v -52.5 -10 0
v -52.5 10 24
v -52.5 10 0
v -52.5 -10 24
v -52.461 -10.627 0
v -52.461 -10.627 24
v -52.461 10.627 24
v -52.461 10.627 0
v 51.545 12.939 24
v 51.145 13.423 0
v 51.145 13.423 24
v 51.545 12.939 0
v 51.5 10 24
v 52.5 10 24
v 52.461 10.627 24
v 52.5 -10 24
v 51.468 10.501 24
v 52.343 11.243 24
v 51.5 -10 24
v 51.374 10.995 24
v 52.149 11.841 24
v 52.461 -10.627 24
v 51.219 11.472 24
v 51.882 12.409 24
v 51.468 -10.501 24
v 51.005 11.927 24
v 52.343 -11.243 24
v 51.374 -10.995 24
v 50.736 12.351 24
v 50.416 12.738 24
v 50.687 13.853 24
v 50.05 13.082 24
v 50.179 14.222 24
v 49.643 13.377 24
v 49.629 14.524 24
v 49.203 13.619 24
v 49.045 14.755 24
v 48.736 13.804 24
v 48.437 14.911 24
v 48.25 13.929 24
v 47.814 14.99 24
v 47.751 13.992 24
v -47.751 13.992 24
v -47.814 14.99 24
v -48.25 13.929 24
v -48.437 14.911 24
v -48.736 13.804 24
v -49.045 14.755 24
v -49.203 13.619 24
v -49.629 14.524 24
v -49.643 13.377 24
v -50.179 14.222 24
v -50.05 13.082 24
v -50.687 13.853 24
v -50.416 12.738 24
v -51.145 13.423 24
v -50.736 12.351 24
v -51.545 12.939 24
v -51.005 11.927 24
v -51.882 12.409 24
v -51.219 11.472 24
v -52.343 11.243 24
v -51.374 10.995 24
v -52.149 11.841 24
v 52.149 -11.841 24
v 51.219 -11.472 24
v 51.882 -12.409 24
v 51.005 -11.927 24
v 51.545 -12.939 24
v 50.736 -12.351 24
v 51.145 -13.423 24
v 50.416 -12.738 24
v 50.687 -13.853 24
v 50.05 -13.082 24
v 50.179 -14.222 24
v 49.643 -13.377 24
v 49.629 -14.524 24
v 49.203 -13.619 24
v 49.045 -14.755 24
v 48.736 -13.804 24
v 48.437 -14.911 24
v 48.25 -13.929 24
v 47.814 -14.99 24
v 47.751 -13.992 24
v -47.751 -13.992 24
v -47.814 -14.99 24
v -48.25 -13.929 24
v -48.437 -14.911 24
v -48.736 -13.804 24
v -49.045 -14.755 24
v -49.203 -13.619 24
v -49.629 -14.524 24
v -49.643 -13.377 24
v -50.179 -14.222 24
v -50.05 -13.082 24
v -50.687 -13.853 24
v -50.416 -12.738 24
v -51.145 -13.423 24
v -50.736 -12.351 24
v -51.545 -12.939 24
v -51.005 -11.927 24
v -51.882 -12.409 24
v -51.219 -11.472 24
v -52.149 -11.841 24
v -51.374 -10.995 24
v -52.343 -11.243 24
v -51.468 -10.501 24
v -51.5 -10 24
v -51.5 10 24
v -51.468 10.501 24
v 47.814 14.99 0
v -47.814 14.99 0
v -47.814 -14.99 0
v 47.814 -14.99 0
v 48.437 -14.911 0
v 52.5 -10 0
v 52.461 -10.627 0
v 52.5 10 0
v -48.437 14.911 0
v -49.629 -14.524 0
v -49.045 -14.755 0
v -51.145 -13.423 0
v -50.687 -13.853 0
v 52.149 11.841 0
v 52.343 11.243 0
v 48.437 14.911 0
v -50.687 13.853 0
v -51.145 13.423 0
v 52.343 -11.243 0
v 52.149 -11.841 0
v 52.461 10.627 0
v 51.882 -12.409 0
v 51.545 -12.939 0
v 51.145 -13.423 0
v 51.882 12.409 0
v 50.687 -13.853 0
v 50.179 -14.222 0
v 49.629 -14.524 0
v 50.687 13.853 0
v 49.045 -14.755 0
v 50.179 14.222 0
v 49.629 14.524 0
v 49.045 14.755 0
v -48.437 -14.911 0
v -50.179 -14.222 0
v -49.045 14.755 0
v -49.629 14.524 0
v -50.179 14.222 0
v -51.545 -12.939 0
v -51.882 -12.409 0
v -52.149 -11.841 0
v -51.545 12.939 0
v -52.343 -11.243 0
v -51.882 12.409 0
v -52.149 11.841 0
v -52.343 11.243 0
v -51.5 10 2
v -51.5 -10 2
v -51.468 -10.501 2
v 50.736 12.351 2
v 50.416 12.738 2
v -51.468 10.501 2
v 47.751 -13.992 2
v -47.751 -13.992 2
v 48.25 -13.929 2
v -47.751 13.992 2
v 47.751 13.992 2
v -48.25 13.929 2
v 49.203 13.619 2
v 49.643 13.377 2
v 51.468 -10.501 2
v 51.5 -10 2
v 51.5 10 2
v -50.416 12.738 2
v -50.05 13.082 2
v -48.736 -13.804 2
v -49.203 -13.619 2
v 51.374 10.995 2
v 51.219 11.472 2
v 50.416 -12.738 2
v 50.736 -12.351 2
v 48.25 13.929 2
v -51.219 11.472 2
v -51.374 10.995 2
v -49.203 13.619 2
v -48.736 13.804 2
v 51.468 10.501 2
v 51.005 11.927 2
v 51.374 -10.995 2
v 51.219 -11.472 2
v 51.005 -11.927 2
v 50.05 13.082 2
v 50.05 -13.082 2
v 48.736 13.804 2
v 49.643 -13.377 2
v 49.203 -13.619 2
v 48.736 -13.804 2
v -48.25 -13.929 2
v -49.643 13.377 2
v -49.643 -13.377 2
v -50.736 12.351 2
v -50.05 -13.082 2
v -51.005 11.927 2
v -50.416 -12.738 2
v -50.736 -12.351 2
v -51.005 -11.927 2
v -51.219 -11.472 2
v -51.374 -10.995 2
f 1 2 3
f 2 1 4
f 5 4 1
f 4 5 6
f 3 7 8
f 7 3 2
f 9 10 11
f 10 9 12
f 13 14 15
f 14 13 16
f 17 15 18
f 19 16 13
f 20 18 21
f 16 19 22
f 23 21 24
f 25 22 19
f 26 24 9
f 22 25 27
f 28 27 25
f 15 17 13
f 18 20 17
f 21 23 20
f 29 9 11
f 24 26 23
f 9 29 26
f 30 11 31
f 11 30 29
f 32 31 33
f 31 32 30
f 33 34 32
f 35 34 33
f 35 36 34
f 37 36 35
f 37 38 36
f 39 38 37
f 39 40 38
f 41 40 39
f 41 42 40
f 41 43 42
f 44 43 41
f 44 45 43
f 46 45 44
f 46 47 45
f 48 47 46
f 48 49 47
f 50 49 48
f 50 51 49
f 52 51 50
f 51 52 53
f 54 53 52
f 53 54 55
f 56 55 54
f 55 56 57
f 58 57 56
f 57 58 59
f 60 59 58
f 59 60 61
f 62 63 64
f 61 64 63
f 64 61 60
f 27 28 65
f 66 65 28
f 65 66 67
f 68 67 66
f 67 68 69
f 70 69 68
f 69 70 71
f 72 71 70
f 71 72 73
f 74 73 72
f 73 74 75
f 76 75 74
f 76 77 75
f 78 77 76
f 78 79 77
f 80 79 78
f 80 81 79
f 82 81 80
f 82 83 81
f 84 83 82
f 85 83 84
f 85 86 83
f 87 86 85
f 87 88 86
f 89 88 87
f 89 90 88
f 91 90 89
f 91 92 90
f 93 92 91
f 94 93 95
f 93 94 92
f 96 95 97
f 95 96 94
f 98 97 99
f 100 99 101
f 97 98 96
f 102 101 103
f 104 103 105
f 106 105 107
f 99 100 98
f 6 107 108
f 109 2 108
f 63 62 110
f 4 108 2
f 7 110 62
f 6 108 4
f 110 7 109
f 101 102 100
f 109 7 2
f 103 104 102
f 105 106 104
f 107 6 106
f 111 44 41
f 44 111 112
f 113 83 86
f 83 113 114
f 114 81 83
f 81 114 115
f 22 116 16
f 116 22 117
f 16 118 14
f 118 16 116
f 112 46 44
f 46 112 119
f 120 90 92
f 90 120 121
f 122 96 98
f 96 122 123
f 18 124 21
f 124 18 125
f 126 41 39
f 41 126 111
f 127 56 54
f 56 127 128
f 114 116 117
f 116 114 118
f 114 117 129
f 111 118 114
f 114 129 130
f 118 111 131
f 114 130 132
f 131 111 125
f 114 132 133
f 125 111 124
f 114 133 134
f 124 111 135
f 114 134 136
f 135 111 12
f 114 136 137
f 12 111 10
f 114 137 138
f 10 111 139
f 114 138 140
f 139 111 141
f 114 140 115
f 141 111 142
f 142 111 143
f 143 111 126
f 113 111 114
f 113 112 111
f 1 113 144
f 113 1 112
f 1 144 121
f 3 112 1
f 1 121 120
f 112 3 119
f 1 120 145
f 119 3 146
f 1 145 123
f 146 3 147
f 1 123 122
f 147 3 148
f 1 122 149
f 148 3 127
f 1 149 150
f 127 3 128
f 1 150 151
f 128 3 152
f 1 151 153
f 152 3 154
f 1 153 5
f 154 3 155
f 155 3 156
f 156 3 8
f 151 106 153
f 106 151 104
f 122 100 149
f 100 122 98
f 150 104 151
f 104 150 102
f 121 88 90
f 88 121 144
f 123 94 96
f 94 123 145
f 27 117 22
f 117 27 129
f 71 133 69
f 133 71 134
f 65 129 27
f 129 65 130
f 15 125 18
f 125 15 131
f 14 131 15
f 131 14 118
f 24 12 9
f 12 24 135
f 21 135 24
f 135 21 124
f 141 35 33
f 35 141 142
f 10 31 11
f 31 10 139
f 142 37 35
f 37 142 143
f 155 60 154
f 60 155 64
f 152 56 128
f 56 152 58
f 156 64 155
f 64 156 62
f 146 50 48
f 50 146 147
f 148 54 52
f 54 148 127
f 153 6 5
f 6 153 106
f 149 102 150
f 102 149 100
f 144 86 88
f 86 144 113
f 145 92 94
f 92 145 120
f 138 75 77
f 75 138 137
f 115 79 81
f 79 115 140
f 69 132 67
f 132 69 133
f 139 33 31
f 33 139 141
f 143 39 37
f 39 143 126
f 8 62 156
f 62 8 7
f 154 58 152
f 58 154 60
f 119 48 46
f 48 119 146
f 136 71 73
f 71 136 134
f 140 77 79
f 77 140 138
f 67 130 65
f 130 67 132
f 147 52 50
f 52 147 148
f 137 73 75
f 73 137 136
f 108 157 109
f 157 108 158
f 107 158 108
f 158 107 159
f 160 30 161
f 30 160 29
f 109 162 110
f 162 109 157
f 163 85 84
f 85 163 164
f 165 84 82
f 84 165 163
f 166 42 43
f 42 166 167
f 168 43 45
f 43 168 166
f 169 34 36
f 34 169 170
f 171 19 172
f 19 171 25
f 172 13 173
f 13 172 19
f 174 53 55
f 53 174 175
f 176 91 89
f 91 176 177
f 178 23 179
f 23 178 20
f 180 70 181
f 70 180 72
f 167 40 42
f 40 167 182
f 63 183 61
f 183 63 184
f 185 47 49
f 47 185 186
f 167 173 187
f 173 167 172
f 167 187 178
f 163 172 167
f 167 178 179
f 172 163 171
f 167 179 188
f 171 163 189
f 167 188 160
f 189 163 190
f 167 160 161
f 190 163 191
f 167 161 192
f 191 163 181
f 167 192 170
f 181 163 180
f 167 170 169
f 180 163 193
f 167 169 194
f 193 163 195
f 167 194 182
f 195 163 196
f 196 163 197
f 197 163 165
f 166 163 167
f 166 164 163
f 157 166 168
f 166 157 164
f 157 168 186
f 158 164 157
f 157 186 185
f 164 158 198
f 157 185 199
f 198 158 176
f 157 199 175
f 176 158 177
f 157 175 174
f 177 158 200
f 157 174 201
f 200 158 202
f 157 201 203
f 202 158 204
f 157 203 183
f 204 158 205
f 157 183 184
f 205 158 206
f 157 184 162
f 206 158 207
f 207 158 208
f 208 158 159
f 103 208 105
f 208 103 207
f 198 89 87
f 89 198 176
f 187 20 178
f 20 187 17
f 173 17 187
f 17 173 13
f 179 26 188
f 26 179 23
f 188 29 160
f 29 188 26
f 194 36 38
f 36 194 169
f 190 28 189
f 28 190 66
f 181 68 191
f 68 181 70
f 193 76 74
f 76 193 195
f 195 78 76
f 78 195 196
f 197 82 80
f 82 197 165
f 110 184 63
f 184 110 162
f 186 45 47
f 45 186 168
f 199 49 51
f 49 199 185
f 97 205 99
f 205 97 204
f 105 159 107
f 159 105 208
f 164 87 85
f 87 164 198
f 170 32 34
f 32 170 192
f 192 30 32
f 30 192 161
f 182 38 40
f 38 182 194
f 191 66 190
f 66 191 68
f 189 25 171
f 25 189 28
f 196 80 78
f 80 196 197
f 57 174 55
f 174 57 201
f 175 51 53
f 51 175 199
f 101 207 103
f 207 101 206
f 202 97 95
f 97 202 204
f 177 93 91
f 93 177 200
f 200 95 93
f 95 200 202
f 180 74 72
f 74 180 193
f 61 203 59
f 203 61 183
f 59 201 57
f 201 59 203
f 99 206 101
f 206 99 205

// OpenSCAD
$fn = 50;


difference() {
	union() {
		hull() {
			translate(v = [-47.5000000000, 10.0000000000, 0]) {
				cylinder(h = 24, r = 5);
			}
			translate(v = [47.5000000000, 10.0000000000, 0]) {
				cylinder(h = 24, r = 5);
			}
			translate(v = [-47.5000000000, -10.0000000000, 0]) {
				cylinder(h = 24, r = 5);
			}
			translate(v = [47.5000000000, -10.0000000000, 0]) {
				cylinder(h = 24, r = 5);
			}
		}
	}
	union() {
		translate(v = [0, 0, 2]) {
			hull() {
				translate(v = [-47.5000000000, 10.0000000000, 0]) {
					cylinder(h = 22, r = 4);
				}
				translate(v = [47.5000000000, 10.0000000000, 0]) {
					cylinder(h = 22, r = 4);
				}
				translate(v = [-47.5000000000, -10.0000000000, 0]) {
					cylinder(h = 22, r = 4);
				}
				translate(v = [47.5000000000, -10.0000000000, 0]) {
					cylinder(h = 22, r = 4);
				}
			}
		}
	}
}
